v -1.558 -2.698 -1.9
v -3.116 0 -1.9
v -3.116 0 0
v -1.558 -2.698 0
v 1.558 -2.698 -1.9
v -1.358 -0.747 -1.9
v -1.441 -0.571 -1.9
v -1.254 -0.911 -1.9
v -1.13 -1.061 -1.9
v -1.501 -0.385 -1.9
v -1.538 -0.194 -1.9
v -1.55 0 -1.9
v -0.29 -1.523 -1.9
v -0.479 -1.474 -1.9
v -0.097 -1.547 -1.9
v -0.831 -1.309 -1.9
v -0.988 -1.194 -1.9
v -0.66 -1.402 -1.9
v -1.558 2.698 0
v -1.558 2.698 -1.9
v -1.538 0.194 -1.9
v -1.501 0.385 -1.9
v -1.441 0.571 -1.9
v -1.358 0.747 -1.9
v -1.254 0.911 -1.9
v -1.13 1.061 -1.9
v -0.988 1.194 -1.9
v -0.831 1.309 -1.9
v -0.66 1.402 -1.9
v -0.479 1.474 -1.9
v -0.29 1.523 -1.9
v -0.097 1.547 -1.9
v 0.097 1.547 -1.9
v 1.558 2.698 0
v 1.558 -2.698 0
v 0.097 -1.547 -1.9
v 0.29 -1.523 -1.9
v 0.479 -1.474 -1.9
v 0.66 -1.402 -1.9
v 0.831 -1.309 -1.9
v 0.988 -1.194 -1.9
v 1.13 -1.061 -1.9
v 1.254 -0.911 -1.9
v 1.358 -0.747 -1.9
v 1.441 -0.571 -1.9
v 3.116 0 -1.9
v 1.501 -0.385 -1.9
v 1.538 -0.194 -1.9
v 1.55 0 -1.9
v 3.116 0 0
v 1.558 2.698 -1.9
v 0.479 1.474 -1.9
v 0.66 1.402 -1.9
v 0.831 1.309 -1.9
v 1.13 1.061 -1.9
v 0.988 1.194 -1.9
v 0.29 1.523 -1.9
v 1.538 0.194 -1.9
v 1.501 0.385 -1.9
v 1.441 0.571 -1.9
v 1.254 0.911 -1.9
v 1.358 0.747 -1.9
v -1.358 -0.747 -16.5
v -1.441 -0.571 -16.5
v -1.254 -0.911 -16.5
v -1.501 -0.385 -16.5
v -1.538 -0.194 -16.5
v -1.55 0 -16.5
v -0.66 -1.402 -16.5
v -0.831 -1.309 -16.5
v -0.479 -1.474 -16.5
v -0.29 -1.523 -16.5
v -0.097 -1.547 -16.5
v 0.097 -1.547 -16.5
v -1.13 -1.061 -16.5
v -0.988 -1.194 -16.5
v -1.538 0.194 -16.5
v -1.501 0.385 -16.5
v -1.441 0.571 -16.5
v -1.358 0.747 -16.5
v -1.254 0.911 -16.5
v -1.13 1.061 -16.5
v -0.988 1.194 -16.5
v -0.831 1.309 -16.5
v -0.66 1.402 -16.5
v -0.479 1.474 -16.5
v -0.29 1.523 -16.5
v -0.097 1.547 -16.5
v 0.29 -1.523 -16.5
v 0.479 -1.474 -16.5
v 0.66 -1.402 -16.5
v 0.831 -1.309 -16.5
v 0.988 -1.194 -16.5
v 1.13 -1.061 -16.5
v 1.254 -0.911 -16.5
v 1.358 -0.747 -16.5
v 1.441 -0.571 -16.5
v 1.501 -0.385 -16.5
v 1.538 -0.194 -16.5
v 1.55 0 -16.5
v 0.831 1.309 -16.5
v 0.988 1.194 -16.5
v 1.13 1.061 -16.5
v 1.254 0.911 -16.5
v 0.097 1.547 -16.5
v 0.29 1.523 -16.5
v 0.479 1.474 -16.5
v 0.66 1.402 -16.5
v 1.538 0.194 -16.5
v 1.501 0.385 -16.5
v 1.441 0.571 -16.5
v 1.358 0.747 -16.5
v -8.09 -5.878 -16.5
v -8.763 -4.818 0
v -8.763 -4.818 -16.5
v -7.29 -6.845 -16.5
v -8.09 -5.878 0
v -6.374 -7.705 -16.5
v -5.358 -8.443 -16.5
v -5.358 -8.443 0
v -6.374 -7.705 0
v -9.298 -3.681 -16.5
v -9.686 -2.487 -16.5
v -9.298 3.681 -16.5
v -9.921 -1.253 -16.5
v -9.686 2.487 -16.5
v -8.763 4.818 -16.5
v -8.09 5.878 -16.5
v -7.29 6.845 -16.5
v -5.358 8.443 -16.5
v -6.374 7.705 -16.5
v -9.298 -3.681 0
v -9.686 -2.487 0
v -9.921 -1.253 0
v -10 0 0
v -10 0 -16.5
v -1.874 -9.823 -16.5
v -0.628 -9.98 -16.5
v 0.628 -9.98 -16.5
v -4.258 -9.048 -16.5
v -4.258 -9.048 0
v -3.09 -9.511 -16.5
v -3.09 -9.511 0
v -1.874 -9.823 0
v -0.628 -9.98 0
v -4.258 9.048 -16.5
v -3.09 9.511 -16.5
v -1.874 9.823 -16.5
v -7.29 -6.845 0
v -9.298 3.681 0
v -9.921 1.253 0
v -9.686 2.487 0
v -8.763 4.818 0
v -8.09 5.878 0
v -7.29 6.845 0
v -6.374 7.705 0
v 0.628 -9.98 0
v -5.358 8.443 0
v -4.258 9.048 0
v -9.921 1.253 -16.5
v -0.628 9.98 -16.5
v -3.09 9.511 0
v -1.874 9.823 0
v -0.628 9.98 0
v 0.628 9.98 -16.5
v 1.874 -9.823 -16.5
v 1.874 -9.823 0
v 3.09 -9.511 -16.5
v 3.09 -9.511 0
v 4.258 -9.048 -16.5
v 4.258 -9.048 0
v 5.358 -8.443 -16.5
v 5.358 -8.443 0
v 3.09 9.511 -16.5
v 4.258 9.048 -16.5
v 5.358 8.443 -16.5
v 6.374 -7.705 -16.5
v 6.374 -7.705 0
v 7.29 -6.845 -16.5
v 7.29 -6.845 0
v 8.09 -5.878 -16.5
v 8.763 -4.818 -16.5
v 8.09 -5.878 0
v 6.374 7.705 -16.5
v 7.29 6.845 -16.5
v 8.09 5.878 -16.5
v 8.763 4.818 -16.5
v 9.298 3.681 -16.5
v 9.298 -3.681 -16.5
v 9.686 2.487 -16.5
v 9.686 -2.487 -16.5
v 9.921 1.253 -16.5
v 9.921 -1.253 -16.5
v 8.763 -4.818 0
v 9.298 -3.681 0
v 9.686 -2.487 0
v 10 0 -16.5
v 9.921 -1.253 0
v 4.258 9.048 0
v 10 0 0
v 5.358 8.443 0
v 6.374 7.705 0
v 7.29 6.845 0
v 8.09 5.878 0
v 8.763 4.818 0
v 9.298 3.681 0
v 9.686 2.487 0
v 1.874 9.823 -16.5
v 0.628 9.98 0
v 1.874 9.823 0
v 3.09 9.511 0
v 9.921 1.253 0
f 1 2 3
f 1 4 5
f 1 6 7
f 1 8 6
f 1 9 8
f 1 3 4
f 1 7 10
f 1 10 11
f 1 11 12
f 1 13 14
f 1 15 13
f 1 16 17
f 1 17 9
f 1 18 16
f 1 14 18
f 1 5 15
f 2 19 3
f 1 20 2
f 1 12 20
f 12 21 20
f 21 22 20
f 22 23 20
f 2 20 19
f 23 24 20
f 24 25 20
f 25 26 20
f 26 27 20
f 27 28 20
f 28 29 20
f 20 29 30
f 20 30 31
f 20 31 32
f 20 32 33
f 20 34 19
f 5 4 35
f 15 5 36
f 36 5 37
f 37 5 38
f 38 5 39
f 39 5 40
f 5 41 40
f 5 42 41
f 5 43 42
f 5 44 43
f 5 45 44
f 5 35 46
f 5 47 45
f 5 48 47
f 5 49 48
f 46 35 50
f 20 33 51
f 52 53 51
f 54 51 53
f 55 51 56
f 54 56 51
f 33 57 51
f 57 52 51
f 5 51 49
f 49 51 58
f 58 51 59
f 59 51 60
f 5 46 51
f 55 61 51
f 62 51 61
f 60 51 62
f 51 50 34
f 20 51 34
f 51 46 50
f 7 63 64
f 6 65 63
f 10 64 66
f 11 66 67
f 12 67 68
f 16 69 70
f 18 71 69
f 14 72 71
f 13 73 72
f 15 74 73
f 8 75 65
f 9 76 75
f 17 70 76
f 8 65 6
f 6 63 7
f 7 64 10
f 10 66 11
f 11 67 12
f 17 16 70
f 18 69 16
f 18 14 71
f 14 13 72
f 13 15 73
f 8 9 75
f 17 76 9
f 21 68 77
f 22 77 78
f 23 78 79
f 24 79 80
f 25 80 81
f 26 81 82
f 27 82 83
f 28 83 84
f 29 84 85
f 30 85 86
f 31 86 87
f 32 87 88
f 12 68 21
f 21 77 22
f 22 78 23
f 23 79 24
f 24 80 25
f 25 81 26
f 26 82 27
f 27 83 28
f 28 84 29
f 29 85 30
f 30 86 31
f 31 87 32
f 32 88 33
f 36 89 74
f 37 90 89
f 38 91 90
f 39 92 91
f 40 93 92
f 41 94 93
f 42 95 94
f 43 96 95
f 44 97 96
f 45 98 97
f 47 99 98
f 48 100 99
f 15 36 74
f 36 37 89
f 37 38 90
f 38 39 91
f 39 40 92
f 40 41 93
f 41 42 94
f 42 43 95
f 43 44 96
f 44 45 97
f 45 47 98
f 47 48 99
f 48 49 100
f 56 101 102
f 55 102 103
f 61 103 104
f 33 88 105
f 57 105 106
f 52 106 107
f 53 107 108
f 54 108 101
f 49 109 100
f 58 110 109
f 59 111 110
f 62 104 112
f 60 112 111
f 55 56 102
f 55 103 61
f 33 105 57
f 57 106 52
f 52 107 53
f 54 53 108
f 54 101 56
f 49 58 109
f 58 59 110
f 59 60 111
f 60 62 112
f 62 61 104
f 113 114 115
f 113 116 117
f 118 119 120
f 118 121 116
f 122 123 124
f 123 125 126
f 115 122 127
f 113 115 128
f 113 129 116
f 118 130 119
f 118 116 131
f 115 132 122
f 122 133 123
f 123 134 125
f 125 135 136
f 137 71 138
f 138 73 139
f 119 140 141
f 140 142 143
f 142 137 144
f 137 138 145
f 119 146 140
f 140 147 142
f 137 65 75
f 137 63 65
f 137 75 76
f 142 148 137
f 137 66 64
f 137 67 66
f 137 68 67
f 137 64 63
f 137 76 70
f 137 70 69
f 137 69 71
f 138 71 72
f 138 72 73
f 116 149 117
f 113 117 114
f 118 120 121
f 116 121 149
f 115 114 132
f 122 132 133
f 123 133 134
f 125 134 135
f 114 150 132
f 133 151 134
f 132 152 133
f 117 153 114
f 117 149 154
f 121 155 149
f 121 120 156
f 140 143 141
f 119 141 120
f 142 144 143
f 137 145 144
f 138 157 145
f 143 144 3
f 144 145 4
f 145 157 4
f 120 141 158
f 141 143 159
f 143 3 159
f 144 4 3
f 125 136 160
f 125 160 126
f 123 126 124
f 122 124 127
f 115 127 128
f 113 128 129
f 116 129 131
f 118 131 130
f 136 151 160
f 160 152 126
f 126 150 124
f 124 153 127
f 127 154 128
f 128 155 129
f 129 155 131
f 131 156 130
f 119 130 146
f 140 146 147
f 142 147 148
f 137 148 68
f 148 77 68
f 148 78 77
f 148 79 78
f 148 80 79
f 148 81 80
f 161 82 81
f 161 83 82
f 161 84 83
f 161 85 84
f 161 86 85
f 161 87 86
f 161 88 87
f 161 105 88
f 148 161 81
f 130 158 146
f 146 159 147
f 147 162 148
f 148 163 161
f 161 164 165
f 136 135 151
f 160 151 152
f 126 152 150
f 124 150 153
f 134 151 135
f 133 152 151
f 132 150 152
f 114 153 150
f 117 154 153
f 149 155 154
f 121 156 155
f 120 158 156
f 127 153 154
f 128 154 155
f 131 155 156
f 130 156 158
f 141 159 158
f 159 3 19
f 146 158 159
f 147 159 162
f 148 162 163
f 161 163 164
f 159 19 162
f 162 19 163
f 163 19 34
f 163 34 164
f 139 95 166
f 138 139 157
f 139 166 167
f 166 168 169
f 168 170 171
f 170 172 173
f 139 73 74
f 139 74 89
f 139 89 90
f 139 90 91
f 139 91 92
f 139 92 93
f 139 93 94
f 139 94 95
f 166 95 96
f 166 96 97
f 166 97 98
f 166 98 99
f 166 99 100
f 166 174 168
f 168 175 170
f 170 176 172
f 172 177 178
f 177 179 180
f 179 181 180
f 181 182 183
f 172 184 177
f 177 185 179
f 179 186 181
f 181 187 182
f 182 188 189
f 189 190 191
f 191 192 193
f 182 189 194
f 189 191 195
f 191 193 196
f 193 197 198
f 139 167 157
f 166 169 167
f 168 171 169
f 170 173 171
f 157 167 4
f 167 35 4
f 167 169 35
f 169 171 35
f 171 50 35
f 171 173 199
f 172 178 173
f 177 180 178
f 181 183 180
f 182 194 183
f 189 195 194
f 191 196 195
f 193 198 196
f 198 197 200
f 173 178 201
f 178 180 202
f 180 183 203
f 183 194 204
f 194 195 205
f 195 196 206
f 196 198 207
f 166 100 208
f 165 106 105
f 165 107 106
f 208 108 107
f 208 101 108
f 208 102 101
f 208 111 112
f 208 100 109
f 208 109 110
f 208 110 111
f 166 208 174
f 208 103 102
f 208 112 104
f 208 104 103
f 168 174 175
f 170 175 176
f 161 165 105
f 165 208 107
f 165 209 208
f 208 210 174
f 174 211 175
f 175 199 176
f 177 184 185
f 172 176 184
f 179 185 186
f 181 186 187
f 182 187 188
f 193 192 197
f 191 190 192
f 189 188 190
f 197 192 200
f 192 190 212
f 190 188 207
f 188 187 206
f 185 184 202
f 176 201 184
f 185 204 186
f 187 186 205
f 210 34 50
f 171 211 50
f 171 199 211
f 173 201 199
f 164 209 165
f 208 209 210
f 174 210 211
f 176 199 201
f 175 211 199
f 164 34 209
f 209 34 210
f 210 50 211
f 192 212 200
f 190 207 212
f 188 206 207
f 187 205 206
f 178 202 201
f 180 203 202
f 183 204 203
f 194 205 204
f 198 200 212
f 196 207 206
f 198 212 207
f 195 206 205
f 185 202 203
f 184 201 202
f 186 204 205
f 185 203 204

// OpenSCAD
$fn = 50;


difference() {
	union() {
		translate(v = [0, 0, -16.5000000000]) {
			cylinder(h = 16.5000000000, r = 10.0000000000);
		}
	}
	union() {
		translate(v = [0, 0, 0]) {
			rotate(a = [0, 0, 0]) {
				difference() {
					union() {
						translate(v = [0, 0, -1.9000000000]) {
							linear_extrude(height = 1.9000000000) {
								polygon(points = [[3.1158000000, 0.0000000000], [1.5579000000, 2.6983619531], [-1.5579000000, 2.6983619531], [-3.1158000000, 0.0000000000], [-1.5579000000, -2.6983619531], [1.5579000000, -2.6983619531]]);
							}
						}
					}
					union();
				}
			}
		}
		#translate(v = [0, 0, -100.0000000000]) {
			cylinder(h = 200, r = 1.5500000000);
		}
	}
}
